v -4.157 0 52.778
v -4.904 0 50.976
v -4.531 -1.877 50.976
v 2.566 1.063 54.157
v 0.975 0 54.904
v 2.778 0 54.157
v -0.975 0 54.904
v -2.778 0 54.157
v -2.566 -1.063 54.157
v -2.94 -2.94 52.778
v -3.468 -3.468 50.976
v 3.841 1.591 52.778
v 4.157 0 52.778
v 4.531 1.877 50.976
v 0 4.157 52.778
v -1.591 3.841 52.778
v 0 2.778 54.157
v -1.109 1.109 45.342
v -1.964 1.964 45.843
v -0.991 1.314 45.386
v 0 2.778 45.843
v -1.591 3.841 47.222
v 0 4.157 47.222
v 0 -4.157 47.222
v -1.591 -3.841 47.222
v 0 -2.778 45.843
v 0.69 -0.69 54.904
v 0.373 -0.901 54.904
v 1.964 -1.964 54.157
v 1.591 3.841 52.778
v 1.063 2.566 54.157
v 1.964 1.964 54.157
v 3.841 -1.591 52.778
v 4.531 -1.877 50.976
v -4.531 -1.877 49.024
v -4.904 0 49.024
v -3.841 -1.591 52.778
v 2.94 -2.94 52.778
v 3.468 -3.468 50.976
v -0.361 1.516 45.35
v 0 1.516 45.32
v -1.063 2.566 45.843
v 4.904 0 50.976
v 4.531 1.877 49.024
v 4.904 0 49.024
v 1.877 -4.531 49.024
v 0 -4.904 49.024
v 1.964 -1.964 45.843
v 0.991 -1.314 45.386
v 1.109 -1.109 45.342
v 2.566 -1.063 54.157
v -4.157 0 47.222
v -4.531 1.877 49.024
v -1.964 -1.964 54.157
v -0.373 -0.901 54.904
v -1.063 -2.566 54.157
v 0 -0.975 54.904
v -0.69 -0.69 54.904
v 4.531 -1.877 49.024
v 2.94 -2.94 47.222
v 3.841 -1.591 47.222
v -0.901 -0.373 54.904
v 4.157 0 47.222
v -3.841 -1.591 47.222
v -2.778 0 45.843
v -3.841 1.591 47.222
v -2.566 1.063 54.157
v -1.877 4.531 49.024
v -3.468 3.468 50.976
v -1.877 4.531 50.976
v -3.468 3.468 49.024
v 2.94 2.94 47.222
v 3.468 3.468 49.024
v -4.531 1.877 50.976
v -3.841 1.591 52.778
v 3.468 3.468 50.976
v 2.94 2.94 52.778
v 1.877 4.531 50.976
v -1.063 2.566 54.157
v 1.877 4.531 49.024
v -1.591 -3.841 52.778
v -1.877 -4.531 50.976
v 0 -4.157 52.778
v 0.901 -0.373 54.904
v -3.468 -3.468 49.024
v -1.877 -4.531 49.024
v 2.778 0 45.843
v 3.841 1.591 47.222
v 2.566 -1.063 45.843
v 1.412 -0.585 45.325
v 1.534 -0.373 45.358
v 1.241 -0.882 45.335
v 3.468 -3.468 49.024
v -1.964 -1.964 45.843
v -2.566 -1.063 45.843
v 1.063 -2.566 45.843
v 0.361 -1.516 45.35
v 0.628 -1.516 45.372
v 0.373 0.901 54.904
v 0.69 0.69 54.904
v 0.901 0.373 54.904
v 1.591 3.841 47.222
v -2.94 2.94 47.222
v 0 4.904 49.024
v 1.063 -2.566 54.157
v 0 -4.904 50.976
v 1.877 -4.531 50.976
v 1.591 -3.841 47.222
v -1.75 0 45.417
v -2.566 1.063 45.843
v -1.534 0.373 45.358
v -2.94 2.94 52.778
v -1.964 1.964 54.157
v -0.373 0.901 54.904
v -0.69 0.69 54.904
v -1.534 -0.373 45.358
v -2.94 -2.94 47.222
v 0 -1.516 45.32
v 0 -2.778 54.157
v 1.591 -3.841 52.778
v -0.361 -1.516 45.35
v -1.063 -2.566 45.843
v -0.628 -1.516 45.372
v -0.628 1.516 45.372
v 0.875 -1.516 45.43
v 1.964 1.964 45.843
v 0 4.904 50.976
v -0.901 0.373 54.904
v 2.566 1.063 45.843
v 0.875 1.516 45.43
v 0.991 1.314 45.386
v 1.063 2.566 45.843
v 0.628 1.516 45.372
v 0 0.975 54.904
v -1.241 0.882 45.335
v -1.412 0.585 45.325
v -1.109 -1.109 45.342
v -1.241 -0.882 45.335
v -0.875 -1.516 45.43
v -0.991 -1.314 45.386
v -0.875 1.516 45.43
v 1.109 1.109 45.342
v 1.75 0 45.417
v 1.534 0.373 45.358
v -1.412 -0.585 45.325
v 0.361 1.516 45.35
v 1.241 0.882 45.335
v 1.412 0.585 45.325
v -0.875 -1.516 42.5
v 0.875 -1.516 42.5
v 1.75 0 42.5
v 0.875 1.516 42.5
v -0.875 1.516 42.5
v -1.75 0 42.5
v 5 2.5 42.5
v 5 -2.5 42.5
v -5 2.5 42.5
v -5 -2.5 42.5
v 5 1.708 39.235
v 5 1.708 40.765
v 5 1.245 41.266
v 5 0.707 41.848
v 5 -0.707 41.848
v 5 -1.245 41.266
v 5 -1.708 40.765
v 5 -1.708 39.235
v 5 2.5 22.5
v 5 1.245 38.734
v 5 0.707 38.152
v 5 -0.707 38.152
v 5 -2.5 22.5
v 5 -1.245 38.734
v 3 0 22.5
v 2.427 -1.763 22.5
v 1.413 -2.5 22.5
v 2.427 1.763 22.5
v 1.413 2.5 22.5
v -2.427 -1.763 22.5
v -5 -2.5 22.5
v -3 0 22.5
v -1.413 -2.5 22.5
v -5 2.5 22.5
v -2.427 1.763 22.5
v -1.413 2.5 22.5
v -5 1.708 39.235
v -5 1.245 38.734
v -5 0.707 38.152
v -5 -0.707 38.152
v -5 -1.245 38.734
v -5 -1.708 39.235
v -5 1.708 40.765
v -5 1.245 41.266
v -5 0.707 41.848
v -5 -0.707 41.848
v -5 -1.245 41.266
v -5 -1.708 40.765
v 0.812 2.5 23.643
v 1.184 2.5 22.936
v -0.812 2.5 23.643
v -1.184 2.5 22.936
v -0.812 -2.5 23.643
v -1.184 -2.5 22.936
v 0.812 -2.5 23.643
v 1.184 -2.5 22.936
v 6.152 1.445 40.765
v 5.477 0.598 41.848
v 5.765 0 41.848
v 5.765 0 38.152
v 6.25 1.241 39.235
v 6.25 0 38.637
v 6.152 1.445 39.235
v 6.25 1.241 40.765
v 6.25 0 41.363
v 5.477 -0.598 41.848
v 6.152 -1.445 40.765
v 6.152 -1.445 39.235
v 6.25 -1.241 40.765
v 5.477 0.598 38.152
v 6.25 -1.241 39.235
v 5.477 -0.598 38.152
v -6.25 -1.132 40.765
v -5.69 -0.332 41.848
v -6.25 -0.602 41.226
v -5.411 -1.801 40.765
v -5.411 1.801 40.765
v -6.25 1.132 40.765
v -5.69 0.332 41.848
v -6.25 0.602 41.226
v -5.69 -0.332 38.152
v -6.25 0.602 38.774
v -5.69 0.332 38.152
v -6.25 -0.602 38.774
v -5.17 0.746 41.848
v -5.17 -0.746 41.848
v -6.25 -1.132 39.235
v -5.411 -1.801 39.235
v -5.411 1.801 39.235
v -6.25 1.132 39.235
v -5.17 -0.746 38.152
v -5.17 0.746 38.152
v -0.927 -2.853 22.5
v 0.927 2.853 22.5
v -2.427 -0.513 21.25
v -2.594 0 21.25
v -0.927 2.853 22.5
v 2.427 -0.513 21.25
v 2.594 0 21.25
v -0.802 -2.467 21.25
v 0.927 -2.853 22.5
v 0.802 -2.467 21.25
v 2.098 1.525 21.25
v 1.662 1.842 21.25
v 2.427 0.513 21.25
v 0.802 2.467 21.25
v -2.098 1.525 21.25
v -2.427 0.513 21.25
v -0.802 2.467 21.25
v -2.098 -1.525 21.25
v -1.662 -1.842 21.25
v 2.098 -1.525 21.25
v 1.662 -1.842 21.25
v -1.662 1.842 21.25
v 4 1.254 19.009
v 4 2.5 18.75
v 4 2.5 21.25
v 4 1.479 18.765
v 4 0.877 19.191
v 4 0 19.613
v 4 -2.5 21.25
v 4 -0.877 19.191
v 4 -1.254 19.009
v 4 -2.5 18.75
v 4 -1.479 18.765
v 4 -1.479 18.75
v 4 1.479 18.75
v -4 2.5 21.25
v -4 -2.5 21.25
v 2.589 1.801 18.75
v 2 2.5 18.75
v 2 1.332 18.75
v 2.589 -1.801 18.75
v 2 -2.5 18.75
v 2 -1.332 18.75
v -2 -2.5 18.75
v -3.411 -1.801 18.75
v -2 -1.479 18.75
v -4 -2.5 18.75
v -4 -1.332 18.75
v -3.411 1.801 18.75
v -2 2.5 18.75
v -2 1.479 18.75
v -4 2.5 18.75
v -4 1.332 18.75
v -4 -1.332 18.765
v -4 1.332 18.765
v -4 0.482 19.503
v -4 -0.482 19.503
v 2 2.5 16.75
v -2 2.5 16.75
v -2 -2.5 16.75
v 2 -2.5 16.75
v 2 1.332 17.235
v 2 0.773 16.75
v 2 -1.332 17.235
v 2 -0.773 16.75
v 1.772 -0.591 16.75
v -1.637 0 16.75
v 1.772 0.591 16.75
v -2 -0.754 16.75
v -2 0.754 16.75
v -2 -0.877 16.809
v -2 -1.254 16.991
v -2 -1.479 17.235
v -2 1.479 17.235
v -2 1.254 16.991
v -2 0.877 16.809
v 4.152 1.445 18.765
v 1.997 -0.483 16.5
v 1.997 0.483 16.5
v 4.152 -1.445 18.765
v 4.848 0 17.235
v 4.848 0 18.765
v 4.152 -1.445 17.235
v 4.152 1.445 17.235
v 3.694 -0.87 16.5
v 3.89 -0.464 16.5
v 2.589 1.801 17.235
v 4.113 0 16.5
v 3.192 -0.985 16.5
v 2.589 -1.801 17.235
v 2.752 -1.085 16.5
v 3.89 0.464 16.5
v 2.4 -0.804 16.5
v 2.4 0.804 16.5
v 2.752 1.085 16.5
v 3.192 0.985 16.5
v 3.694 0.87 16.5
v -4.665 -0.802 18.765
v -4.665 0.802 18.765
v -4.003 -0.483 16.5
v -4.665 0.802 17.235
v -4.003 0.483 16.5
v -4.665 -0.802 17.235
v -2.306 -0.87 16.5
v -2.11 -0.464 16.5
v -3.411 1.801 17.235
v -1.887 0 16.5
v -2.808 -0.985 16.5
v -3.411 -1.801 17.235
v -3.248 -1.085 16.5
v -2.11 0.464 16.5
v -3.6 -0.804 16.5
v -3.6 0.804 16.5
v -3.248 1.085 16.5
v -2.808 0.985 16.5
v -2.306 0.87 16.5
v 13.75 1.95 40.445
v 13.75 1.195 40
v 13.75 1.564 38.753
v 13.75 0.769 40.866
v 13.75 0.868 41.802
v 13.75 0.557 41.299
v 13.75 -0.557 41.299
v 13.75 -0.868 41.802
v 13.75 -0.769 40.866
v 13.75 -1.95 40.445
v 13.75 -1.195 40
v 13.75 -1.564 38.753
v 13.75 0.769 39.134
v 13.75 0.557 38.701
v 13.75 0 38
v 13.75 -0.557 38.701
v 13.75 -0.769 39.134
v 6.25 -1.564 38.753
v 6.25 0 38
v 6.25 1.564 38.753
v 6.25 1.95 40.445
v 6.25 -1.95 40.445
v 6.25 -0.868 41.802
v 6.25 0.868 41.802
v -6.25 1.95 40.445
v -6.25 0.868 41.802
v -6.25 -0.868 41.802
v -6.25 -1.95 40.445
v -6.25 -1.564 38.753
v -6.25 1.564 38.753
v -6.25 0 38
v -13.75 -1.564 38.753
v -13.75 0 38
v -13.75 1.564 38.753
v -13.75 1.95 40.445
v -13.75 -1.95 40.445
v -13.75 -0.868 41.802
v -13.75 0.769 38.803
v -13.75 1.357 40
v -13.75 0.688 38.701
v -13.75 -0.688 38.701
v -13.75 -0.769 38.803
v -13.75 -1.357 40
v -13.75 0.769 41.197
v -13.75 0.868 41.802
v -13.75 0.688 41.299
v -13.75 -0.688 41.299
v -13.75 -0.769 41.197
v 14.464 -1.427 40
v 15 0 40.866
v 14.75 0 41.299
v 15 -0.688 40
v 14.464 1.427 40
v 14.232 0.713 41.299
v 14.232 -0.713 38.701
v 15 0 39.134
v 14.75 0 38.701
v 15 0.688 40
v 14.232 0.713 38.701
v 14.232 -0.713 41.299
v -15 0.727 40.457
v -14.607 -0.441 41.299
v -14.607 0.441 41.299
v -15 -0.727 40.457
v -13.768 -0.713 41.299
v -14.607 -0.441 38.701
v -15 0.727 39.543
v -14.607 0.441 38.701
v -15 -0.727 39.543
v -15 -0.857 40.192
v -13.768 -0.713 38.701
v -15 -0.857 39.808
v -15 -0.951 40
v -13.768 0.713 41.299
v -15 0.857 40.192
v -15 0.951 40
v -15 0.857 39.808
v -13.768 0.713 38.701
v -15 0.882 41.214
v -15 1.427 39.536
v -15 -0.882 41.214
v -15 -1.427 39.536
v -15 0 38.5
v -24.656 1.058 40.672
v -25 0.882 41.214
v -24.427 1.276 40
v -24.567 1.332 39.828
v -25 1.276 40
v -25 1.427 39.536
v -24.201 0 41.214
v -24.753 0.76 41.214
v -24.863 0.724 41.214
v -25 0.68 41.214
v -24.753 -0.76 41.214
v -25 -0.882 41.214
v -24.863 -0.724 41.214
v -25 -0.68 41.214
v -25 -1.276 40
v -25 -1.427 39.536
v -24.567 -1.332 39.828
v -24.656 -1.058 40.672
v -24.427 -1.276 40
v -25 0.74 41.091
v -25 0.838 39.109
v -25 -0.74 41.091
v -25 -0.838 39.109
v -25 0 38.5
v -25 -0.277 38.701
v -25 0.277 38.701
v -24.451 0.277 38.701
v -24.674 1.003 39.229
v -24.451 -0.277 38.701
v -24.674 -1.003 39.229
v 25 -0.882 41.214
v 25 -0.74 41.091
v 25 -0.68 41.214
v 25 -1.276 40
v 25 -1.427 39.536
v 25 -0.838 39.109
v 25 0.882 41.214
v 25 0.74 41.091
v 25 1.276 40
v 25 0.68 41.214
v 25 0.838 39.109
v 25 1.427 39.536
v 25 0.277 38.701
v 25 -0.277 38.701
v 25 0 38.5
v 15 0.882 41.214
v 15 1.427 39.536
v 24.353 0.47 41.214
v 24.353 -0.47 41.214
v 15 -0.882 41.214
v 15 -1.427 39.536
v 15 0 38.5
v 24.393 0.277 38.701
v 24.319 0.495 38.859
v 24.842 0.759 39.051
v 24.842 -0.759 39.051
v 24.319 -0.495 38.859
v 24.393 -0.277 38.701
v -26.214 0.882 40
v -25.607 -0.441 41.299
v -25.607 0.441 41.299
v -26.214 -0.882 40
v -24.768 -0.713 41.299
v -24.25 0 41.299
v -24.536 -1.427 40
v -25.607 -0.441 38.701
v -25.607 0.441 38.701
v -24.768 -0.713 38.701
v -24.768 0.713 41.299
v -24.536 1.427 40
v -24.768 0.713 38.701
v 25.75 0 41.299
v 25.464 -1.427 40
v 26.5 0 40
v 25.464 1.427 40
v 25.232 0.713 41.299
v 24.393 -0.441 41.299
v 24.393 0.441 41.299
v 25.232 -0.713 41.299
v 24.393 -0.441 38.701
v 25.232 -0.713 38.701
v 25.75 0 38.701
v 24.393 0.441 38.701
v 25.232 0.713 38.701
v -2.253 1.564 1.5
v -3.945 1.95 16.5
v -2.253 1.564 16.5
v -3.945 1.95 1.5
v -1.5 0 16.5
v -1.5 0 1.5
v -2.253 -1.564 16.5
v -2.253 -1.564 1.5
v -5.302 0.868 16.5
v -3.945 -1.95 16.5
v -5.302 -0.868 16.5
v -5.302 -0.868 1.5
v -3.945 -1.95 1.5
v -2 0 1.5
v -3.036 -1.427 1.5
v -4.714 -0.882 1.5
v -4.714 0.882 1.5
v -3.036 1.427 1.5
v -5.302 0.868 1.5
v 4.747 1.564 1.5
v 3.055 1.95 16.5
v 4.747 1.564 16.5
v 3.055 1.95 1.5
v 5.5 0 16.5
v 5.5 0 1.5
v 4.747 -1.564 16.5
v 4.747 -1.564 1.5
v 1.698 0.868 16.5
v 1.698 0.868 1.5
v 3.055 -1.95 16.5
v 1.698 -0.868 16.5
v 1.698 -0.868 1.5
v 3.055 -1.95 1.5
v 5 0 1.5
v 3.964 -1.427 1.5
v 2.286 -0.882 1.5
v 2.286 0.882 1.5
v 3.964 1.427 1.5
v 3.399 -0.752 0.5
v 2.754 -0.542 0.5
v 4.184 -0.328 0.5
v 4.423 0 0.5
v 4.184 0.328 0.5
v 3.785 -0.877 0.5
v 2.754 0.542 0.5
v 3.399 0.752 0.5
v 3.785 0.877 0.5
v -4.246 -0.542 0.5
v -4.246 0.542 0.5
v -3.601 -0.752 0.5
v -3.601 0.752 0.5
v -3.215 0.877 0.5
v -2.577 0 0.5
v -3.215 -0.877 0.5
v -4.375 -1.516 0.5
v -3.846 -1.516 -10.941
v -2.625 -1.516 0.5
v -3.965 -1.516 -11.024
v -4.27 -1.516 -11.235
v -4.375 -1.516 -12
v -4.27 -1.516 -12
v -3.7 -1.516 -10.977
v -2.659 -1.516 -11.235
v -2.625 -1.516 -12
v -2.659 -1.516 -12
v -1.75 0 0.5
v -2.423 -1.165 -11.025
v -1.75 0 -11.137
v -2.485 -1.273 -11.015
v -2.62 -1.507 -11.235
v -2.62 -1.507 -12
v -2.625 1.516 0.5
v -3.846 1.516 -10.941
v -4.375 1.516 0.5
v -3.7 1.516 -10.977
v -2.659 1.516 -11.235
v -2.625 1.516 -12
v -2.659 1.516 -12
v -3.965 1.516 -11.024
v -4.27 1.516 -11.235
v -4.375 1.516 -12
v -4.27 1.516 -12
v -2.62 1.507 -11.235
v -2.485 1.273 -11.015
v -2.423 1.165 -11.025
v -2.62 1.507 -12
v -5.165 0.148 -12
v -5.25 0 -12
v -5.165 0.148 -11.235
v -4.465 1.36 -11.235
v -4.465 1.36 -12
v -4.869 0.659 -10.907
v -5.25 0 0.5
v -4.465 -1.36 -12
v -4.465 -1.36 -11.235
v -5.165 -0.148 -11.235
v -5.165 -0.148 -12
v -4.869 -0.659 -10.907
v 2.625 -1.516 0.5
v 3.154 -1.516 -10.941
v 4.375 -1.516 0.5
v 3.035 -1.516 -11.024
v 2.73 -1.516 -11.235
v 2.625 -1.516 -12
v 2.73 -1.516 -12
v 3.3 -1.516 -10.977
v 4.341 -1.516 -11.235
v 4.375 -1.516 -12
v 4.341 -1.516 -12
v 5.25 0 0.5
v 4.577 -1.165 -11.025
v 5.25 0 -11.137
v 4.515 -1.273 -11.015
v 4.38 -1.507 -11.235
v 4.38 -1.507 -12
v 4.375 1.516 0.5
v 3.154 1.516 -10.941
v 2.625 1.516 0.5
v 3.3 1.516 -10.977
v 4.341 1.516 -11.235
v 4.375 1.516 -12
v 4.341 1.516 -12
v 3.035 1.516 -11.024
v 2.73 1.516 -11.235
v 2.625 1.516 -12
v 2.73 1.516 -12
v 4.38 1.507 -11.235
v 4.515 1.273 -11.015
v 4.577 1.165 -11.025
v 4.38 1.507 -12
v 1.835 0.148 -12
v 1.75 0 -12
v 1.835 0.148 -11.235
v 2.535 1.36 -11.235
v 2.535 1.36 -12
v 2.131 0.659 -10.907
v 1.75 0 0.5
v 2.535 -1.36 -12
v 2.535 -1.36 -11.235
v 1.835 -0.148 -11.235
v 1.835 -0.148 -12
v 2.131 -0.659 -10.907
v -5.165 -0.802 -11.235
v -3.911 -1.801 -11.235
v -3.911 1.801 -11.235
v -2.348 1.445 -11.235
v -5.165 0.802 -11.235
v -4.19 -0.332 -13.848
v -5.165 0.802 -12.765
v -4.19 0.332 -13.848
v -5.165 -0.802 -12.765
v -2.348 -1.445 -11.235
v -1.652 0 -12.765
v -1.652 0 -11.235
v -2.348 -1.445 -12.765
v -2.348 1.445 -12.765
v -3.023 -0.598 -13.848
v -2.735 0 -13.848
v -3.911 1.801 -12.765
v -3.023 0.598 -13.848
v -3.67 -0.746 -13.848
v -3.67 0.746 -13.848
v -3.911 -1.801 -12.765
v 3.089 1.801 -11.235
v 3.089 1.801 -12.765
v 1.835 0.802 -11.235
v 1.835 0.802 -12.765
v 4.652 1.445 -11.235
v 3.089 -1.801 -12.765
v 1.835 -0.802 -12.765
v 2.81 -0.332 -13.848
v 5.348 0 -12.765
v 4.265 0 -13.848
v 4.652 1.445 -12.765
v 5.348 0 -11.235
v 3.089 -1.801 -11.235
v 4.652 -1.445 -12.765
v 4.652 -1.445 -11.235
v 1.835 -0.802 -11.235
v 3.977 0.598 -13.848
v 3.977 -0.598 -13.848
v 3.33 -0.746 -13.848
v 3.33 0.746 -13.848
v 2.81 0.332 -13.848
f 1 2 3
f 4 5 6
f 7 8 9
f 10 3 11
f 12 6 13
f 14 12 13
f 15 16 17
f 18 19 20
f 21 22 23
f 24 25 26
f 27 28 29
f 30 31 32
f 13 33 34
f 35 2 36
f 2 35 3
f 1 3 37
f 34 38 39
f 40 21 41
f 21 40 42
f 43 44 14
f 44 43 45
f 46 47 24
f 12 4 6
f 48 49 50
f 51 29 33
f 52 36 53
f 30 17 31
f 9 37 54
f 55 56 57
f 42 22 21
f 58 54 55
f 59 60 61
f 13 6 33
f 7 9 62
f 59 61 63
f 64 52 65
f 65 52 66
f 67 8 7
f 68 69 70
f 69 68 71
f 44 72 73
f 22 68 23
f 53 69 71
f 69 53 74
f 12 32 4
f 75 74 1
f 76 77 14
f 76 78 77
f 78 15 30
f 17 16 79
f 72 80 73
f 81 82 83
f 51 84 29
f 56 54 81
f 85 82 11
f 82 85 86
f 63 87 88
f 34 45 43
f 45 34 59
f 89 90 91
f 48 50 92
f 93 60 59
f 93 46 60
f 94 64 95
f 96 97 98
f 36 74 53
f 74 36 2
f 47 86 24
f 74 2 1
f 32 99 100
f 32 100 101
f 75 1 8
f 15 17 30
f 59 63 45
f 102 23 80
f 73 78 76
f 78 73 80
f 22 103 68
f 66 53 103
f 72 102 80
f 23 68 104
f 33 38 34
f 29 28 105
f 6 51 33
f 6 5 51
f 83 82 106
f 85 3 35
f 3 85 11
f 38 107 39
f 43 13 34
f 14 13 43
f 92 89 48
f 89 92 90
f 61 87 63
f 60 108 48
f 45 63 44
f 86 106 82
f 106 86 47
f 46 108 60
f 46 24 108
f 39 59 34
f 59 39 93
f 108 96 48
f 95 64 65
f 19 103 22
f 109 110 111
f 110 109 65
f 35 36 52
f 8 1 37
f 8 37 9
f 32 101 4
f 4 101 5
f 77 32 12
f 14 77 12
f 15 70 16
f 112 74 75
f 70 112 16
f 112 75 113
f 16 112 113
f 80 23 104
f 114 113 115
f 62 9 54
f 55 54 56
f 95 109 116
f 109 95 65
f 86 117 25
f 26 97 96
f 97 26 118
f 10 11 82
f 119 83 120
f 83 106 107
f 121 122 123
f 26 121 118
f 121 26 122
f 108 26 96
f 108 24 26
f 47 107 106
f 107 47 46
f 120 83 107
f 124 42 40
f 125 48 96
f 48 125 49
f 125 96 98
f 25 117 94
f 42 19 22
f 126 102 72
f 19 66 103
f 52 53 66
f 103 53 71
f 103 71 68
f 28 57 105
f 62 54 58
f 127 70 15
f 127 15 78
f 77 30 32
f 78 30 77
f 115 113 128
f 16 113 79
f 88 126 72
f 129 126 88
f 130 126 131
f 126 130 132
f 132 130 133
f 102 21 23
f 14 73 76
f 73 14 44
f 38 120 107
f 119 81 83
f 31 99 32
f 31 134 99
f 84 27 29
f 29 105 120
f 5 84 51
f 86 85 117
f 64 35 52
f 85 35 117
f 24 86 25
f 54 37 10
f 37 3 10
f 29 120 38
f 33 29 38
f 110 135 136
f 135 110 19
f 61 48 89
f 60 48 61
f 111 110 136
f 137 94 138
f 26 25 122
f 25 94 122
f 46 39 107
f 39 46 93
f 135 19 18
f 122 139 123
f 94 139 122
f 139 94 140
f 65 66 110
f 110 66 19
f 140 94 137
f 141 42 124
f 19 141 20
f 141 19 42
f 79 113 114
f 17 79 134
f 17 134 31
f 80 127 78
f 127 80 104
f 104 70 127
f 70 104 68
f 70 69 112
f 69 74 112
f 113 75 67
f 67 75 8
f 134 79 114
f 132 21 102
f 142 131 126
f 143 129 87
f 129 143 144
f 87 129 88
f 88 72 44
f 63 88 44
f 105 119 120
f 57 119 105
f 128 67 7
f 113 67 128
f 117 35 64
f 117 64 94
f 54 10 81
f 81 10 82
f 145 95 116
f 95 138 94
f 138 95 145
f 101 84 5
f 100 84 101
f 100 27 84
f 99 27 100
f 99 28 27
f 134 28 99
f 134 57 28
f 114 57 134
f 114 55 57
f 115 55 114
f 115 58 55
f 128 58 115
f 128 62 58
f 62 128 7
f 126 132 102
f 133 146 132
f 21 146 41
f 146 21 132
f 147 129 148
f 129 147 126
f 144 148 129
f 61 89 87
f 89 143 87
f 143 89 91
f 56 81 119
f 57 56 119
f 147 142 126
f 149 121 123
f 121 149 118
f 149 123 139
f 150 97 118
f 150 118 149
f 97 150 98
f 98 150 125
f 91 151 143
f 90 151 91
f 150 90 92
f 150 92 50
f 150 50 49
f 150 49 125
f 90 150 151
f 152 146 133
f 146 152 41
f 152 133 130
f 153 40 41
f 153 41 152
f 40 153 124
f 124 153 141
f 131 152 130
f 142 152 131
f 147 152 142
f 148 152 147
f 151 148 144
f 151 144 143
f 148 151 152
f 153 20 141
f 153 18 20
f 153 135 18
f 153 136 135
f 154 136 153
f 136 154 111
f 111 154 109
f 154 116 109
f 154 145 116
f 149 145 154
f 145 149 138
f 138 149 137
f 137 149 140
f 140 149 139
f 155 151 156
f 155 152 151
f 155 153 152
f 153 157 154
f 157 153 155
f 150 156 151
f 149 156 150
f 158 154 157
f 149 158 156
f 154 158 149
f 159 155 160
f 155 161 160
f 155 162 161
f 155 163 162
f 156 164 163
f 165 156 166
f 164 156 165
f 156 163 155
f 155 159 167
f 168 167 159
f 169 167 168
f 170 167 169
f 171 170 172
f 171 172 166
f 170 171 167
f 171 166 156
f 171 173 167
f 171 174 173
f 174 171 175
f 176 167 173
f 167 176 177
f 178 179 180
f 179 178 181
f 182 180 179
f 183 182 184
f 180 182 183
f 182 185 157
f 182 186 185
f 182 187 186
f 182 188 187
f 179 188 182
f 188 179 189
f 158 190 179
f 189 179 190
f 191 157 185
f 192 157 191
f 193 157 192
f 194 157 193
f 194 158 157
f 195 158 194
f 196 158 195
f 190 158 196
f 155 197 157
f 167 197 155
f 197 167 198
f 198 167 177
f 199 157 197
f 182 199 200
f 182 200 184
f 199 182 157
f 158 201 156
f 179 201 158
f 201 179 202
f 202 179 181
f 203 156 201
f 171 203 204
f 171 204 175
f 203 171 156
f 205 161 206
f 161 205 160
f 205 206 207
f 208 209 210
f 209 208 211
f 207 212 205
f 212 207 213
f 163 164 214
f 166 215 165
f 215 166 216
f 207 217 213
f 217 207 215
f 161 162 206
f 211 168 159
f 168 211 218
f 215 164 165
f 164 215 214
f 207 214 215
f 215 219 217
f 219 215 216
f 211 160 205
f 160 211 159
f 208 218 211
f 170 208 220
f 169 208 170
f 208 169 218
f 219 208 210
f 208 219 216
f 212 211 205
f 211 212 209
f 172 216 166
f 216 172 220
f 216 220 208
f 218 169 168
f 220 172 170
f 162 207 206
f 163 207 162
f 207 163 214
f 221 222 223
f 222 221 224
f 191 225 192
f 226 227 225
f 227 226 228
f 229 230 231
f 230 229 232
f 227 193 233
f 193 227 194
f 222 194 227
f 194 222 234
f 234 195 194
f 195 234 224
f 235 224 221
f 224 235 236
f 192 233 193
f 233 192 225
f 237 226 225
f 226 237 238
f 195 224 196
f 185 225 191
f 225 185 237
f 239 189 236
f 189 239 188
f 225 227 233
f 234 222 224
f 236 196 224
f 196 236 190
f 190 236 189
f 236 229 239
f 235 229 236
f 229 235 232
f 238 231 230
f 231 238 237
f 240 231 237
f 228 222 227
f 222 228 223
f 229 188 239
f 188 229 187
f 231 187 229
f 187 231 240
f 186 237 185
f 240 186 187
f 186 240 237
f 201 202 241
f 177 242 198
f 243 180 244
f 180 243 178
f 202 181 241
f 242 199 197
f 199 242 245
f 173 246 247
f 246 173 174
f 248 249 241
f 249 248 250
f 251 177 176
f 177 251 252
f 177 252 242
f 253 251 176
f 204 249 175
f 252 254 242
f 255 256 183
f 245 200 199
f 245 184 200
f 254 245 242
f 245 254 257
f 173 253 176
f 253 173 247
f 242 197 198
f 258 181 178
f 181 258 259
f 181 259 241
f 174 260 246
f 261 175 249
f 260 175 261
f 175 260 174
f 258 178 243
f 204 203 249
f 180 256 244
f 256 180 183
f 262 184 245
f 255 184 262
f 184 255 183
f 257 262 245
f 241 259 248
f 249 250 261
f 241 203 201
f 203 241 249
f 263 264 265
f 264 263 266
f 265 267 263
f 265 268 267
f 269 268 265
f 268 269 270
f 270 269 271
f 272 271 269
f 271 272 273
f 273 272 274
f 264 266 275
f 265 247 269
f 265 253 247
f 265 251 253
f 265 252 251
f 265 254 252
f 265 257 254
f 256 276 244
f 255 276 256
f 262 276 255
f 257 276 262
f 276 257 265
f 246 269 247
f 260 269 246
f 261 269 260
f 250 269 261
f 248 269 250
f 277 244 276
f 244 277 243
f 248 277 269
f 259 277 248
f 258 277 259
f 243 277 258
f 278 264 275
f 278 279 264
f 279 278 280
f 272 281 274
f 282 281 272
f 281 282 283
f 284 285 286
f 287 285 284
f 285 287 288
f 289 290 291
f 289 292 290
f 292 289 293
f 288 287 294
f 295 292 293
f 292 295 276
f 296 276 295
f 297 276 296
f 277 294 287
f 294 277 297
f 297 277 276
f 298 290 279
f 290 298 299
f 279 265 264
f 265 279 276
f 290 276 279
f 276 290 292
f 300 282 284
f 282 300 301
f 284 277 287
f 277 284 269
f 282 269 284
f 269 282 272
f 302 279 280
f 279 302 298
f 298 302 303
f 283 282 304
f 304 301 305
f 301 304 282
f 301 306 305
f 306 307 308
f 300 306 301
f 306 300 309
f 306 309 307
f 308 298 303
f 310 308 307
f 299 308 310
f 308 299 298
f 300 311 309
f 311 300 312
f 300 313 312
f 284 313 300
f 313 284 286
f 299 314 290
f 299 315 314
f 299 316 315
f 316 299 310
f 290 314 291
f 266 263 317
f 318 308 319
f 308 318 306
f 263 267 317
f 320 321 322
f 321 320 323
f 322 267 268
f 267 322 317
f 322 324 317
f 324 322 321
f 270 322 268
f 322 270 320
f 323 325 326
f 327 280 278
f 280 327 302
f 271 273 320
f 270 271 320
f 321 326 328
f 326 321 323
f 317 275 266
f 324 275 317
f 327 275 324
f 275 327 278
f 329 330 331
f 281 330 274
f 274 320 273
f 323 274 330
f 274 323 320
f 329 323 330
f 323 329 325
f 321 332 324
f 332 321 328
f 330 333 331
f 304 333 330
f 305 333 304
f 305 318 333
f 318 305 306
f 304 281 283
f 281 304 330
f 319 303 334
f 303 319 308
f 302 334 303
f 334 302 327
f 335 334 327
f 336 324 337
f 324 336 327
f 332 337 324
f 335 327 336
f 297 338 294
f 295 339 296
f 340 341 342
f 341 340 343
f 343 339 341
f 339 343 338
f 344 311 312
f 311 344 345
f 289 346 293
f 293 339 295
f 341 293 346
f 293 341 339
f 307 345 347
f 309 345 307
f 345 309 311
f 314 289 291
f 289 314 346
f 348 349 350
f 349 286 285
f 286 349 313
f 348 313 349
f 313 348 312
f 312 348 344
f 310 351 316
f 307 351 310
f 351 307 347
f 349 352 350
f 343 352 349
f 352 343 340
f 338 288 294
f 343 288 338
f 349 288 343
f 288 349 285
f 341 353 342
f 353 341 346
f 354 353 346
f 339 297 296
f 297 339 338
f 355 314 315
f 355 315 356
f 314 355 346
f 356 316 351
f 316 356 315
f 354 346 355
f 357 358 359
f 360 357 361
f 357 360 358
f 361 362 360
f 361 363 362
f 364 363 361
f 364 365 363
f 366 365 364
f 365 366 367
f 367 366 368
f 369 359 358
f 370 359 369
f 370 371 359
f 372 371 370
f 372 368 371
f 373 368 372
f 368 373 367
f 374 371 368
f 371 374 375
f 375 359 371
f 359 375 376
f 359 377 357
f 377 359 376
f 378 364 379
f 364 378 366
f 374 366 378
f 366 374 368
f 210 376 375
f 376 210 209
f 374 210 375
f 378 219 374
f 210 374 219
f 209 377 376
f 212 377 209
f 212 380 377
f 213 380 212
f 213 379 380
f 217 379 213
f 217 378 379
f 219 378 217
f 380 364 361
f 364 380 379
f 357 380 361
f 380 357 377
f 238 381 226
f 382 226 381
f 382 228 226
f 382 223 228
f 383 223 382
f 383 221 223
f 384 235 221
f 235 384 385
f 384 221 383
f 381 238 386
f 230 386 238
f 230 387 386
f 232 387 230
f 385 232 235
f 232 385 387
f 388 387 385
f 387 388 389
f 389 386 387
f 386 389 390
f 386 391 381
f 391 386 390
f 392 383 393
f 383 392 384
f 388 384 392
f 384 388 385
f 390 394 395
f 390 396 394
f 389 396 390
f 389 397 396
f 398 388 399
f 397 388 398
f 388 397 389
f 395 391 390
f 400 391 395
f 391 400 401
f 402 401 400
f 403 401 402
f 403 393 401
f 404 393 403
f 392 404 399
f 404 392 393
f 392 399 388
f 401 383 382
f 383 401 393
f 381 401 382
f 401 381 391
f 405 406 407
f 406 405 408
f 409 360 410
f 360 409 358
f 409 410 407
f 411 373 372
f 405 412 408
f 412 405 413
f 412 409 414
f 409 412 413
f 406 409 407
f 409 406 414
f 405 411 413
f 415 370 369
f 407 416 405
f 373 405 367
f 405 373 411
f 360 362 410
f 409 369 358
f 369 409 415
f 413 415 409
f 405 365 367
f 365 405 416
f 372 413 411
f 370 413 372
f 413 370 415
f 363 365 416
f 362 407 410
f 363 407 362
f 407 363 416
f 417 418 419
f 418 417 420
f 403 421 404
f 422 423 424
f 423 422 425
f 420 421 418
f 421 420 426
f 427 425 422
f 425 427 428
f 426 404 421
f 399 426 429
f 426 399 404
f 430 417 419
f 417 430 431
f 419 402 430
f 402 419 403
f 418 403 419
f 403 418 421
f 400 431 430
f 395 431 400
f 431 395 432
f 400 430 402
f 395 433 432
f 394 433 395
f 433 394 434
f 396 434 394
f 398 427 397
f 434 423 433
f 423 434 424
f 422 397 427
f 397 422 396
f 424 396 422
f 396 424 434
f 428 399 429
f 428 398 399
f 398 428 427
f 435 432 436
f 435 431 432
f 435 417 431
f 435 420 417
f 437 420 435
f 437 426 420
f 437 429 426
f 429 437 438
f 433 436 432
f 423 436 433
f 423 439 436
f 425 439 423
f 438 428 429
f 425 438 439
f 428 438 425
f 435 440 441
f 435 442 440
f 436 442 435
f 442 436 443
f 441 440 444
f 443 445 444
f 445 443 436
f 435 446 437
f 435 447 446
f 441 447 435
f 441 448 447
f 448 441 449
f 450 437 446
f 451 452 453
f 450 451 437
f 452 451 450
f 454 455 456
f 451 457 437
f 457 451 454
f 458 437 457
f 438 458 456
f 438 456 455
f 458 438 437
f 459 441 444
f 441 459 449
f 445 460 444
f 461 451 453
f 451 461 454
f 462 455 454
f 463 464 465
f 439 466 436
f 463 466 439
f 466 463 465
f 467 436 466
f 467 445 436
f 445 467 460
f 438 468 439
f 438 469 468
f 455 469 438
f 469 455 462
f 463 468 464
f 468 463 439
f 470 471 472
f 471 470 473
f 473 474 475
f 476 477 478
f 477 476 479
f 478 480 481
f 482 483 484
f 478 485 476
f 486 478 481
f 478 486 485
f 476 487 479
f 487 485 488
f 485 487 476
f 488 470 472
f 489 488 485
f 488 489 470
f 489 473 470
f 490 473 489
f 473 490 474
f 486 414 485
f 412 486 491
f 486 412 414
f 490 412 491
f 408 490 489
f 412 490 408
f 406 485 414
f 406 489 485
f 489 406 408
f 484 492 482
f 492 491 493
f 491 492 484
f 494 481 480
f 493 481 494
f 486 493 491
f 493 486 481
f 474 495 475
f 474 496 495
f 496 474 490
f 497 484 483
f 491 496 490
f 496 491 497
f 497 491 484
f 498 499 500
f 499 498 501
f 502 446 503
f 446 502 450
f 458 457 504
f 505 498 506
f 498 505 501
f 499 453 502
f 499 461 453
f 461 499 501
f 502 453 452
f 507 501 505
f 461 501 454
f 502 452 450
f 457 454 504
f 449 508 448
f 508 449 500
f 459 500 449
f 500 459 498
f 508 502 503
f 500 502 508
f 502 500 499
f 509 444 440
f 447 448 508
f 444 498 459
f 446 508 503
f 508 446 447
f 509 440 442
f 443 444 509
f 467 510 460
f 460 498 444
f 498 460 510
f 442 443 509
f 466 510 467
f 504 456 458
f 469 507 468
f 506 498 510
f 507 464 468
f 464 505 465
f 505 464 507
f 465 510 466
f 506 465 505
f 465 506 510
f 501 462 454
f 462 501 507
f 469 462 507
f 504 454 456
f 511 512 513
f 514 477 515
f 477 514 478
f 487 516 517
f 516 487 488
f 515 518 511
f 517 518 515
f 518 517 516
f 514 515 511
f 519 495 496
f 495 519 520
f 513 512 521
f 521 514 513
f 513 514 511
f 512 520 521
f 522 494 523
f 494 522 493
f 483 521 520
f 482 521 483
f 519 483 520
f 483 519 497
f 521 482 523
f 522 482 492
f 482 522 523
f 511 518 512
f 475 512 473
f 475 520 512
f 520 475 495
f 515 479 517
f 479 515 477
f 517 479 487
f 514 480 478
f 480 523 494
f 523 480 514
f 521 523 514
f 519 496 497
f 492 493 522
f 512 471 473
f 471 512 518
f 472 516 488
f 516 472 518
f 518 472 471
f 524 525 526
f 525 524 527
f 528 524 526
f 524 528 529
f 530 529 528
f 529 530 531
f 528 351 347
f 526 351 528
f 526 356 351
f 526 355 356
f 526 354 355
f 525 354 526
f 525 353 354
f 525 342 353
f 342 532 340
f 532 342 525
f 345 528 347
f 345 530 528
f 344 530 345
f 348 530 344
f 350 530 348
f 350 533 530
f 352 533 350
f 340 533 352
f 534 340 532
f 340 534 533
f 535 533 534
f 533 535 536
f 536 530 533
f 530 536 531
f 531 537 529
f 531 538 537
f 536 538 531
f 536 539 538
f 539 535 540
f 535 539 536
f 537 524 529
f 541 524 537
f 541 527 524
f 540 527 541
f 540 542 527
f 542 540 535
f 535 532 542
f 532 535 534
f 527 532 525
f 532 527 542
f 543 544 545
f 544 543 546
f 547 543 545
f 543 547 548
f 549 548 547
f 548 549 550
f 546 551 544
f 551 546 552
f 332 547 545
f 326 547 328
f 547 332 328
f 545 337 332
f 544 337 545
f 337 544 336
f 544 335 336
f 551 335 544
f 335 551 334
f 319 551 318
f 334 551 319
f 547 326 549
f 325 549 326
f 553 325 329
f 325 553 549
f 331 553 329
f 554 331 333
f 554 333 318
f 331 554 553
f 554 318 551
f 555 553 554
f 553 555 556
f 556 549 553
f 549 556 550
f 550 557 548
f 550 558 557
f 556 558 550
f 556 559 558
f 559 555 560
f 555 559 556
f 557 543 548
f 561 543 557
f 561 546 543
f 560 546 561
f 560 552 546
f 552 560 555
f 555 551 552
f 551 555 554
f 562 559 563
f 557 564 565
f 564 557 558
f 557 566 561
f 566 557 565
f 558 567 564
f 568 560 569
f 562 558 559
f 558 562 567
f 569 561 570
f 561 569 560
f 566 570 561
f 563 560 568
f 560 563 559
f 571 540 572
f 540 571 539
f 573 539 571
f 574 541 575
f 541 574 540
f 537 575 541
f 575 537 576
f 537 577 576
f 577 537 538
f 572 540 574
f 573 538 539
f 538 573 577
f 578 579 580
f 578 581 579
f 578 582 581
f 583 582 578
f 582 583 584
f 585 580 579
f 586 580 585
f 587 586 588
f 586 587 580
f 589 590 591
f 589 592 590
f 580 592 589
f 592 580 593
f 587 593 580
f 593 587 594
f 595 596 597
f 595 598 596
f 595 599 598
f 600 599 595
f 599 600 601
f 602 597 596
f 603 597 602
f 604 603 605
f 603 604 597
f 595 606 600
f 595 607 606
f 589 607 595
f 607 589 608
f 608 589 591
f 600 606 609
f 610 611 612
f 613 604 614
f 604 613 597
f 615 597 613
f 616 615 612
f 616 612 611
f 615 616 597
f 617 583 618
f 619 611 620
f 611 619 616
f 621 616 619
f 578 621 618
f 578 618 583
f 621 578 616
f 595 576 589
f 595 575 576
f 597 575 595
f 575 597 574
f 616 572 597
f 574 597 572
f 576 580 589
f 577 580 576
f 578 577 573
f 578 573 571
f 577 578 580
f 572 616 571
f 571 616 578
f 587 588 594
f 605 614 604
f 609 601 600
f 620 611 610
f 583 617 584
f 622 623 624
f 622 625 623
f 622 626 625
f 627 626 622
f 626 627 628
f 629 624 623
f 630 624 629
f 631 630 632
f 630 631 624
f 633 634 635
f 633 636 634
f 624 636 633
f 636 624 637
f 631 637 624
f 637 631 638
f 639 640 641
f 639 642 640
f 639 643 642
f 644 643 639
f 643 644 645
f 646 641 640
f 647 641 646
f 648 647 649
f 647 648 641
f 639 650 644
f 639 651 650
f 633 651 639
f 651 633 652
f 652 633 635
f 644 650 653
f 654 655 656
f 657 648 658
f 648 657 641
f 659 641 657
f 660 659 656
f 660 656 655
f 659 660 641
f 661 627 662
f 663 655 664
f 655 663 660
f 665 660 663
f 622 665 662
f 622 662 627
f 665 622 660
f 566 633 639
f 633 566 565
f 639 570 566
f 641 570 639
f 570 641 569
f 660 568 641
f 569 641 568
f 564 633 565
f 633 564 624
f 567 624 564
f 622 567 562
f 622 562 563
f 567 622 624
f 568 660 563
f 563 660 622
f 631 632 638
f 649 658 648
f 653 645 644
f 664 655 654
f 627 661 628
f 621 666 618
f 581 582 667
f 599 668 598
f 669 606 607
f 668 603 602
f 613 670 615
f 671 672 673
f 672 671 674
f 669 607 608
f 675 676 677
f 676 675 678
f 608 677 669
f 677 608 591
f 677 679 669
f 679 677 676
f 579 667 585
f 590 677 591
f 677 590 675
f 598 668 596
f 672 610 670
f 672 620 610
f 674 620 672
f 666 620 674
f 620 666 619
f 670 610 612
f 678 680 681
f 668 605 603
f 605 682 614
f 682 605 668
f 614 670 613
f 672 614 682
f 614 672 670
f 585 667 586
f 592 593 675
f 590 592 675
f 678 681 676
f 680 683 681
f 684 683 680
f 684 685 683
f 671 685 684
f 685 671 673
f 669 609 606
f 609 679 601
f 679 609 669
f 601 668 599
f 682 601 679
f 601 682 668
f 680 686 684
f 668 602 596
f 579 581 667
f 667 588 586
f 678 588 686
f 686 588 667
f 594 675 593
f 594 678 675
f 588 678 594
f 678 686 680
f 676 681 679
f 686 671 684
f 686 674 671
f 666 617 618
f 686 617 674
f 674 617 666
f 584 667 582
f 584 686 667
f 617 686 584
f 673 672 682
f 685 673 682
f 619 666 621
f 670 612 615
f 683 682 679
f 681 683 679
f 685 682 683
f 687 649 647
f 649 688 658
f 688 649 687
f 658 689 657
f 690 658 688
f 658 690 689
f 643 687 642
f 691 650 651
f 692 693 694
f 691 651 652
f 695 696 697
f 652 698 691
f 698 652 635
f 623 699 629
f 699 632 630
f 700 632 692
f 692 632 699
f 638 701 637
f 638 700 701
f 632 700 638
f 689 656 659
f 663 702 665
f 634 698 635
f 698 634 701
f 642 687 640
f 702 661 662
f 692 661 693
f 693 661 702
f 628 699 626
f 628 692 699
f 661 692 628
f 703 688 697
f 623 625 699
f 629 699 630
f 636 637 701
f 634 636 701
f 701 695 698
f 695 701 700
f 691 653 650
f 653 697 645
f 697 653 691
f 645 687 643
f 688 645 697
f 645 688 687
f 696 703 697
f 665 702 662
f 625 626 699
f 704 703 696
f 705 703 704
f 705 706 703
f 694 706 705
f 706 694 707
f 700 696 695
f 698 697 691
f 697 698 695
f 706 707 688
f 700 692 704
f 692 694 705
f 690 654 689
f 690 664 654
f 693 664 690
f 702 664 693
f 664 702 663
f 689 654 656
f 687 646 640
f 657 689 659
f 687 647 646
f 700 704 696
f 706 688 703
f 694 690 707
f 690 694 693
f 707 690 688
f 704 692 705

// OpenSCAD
translate([0, 0, 50]) sphere(5.0);
translate([0, 0, 45]) cylinder(d=3.5, h=5, center=true);
translate([0, 0, 32.5]) cube([10, 5, 20], center=true);
translate([5, 0, 40]) sphere(2.0);
translate([-5, 0, 40]) sphere(2.0);
translate([0, 0, 22.5]) sphere(3.0);
translate([0, 0, 20]) cube([8, 5, 2.5], center=true);
translate([0, 0, 18]) cube([4, 5, 2.5], center=true);
translate([3, 0, 18]) sphere(2.0);
translate([-3, 0, 18]) sphere(2.0);
translate([10, 0, 40]) rotate([0, 90, 0]) cylinder(r=2, h=7.5, center=true);
translate([-10, 0, 40]) rotate([0, 90, 0]) cylinder(r=2, h=7.5, center=true);
translate([14, 0, 40]) sphere(1.5);
translate([-14, 0, 40]) sphere(1.5);
translate([-20, 0, 40]) rotate([0, 90, 0]) cylinder(r=1.5, h=10, center=true);
translate([20, 0, 40]) rotate([0, 90, 0]) cylinder(r=1.5, h=10, center=true);
translate([-25, 0, 40]) sphere(1.5);
translate([25, 0, 40]) sphere(1.5);
translate([-3.5, 0, 1.5]) cylinder(r=2, h=15);
translate([3.5, 0, 1.5]) cylinder(r=2, h=15);
translate([3.5, 0, 1.5]) sphere(1.5);
translate([-3.5, 0, 1.5]) sphere(1.5);
translate([-3.5, 0, -12]) cylinder(r=1.75, h=12.5);
translate([3.5, 0, -12]) cylinder(r=1.75, h=12.5);
translate([-3.5, 0, -12]) sphere(2.);
translate([3.5, 0, -12]) sphere(2.);
